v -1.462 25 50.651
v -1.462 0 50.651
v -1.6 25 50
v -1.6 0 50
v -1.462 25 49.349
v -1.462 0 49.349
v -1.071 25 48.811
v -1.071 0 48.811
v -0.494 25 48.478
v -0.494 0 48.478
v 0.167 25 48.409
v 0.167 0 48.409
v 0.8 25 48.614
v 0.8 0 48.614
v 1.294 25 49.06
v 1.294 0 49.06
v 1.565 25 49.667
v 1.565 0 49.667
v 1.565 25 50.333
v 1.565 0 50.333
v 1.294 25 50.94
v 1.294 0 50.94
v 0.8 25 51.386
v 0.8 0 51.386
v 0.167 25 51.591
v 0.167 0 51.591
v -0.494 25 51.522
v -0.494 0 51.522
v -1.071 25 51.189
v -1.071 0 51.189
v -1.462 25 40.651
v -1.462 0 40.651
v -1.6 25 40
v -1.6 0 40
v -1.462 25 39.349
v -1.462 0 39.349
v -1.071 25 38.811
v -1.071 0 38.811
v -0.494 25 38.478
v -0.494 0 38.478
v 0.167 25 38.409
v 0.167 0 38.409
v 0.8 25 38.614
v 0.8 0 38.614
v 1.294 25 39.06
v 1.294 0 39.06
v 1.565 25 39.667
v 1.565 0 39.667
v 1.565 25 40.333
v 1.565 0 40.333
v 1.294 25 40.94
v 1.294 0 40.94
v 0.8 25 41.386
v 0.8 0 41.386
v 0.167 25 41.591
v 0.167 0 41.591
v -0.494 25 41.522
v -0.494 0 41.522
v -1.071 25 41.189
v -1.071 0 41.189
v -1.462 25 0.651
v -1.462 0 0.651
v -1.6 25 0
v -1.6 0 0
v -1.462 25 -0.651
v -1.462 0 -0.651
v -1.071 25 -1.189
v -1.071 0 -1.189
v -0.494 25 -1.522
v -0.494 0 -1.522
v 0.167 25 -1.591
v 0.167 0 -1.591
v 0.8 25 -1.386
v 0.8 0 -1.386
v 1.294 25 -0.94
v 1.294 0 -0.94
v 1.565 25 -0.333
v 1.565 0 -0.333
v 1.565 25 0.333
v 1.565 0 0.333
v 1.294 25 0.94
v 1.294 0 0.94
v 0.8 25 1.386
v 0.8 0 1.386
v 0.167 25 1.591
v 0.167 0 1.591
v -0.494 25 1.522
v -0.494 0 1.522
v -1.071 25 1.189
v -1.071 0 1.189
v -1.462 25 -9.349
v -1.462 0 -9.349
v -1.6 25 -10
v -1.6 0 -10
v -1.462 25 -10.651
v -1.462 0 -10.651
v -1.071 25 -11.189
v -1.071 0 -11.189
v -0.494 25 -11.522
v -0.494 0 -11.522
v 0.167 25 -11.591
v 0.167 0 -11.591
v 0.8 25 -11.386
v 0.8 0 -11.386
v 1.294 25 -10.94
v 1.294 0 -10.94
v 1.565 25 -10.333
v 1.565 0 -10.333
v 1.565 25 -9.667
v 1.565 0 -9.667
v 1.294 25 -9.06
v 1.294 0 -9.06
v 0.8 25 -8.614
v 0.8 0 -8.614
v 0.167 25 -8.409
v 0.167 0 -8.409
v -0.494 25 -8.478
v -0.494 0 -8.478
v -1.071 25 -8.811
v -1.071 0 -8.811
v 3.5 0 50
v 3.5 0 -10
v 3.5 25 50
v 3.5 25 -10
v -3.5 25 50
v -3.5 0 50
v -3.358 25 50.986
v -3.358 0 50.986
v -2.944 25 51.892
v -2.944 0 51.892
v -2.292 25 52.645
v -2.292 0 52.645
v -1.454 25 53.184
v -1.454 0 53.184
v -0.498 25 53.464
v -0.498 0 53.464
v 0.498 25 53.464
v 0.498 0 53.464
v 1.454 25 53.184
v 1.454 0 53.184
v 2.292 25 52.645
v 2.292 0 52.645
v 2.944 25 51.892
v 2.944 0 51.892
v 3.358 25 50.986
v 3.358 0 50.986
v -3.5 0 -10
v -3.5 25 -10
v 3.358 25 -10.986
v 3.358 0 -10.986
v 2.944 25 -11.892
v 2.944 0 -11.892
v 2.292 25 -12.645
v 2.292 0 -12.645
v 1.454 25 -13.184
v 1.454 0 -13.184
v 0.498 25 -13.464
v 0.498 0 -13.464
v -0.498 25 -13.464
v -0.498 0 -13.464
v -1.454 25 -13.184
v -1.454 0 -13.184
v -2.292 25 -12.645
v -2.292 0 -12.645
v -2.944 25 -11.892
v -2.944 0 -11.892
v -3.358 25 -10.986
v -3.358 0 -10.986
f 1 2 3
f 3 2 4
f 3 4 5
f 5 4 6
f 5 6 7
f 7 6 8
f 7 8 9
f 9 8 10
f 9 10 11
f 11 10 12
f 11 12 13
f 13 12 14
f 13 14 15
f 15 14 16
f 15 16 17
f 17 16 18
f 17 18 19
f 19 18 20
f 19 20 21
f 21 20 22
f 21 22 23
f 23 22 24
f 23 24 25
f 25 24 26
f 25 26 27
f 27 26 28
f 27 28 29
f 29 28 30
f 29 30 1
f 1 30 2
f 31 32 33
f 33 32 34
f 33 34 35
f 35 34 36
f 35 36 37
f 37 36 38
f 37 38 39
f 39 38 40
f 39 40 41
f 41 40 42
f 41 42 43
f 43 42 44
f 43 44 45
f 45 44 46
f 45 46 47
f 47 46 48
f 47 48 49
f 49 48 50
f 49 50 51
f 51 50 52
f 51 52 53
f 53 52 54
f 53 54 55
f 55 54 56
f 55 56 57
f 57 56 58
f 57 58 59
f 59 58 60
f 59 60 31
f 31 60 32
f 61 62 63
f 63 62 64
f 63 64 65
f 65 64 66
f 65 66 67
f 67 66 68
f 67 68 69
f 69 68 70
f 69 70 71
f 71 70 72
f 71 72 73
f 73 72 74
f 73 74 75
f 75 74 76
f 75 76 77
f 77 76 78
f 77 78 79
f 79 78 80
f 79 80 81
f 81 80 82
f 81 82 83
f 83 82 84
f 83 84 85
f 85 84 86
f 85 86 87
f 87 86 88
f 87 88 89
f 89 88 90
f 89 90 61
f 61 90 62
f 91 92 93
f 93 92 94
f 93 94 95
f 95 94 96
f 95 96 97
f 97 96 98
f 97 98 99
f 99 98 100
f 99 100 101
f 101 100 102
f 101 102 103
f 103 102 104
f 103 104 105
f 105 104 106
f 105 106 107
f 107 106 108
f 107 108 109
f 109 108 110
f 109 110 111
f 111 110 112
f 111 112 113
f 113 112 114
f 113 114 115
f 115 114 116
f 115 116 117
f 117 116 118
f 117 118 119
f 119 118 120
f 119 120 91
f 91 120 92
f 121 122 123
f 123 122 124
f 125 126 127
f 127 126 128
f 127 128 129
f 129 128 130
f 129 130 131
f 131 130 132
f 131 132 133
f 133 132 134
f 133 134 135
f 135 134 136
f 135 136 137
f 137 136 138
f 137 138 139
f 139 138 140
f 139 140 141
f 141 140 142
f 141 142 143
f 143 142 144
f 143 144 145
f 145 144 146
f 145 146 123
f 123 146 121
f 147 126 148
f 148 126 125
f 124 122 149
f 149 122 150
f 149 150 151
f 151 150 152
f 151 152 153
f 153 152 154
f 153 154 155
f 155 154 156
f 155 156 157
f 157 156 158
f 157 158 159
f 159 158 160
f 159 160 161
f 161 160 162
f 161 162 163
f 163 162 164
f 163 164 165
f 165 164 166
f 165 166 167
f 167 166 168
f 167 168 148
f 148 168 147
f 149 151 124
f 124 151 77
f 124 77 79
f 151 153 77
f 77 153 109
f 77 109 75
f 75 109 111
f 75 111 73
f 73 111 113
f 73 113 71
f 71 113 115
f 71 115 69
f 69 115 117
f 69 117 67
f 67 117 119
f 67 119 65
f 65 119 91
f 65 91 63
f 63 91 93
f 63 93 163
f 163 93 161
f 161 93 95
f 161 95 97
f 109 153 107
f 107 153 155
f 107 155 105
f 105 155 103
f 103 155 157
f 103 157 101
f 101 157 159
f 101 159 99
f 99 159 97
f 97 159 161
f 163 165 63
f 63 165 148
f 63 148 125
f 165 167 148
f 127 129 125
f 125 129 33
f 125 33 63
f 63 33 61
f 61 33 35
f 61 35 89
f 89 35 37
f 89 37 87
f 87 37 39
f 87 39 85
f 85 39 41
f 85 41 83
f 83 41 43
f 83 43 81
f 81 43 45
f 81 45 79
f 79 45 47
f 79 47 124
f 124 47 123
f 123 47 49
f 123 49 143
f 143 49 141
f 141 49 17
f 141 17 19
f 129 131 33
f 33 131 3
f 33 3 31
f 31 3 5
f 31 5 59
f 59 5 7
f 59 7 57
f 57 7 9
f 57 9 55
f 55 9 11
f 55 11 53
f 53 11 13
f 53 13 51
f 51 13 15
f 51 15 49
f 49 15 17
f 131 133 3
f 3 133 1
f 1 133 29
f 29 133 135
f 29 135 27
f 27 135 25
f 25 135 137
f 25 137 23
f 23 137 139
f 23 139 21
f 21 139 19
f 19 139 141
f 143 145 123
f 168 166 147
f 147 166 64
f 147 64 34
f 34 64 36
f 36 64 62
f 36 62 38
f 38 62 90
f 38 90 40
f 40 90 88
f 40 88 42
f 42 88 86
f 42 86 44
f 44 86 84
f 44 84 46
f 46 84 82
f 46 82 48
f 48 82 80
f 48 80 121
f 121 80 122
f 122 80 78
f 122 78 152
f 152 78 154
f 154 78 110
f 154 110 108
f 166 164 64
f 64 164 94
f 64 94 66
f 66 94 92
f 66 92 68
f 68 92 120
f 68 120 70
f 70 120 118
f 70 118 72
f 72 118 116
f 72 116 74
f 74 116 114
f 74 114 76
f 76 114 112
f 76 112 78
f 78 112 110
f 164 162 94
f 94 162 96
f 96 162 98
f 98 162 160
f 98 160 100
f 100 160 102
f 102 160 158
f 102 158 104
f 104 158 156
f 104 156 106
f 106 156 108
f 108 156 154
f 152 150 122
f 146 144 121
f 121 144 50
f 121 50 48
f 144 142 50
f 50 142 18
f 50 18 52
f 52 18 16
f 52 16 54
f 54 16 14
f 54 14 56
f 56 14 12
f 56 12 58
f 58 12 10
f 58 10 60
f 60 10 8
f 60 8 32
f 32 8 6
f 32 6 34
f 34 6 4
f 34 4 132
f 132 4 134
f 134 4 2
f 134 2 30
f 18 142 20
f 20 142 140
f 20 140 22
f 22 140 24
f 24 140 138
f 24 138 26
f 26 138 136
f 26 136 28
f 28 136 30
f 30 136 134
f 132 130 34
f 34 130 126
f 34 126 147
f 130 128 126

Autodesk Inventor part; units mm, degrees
ref_plane "YZ Plane" through (0, 0, 0) normal (1, 0, 0) x (0, 1, 0)
ref_plane "XZ Plane" through (0, 0, 0) normal (0, 1, 0) x (-1, 0, 0)
ref_plane "XY Plane" through (0, 0, 0) normal (0, 0, 1) x (1, 0, 0)
sketch "Sketch1" plane through (0, 0, 0) normal (0, 1, 0) x (-1, 0, 0)
  circle A0 centre (0, 0) radius 1.6
  line L0 (0, 0) -> (0, -10)
  circle A1 centre (0, -10) radius 1.6
  line L1 (0, 0) -> (0, 40)
  circle A2 centre (0, 40) radius 1.6
  line L2 (0, 40) -> (0, 50)
  circle A3 centre (0, 50) radius 1.6
  line L3 (0, 50) -> (0, -10) construction
  line L4 (-3.5, 50) -> (-3.5, -10)
  line L5 (3.5, -10) -> (3.5, 50)
  arc A4 (3.5, 50) -> (-3.5, 50) centre (0, 50) ccw
  arc A5 (-3.5, -10) -> (3.5, -10) centre (0, -10) ccw
  point P0 (0, 20)
  dimension "d0" = 3.2
  dimension "d1" = 10
  dimension "d2" = 3.2
  dimension "d3" = 40
  dimension "d4" = 3.2
  dimension "d5" = 10
  dimension "d6" = 3.2
  dimension "d7" = 7
extrude "Extrusion1" add sketch "Sketch1" along normal blind 25
properties part number "cover_wall_1"
